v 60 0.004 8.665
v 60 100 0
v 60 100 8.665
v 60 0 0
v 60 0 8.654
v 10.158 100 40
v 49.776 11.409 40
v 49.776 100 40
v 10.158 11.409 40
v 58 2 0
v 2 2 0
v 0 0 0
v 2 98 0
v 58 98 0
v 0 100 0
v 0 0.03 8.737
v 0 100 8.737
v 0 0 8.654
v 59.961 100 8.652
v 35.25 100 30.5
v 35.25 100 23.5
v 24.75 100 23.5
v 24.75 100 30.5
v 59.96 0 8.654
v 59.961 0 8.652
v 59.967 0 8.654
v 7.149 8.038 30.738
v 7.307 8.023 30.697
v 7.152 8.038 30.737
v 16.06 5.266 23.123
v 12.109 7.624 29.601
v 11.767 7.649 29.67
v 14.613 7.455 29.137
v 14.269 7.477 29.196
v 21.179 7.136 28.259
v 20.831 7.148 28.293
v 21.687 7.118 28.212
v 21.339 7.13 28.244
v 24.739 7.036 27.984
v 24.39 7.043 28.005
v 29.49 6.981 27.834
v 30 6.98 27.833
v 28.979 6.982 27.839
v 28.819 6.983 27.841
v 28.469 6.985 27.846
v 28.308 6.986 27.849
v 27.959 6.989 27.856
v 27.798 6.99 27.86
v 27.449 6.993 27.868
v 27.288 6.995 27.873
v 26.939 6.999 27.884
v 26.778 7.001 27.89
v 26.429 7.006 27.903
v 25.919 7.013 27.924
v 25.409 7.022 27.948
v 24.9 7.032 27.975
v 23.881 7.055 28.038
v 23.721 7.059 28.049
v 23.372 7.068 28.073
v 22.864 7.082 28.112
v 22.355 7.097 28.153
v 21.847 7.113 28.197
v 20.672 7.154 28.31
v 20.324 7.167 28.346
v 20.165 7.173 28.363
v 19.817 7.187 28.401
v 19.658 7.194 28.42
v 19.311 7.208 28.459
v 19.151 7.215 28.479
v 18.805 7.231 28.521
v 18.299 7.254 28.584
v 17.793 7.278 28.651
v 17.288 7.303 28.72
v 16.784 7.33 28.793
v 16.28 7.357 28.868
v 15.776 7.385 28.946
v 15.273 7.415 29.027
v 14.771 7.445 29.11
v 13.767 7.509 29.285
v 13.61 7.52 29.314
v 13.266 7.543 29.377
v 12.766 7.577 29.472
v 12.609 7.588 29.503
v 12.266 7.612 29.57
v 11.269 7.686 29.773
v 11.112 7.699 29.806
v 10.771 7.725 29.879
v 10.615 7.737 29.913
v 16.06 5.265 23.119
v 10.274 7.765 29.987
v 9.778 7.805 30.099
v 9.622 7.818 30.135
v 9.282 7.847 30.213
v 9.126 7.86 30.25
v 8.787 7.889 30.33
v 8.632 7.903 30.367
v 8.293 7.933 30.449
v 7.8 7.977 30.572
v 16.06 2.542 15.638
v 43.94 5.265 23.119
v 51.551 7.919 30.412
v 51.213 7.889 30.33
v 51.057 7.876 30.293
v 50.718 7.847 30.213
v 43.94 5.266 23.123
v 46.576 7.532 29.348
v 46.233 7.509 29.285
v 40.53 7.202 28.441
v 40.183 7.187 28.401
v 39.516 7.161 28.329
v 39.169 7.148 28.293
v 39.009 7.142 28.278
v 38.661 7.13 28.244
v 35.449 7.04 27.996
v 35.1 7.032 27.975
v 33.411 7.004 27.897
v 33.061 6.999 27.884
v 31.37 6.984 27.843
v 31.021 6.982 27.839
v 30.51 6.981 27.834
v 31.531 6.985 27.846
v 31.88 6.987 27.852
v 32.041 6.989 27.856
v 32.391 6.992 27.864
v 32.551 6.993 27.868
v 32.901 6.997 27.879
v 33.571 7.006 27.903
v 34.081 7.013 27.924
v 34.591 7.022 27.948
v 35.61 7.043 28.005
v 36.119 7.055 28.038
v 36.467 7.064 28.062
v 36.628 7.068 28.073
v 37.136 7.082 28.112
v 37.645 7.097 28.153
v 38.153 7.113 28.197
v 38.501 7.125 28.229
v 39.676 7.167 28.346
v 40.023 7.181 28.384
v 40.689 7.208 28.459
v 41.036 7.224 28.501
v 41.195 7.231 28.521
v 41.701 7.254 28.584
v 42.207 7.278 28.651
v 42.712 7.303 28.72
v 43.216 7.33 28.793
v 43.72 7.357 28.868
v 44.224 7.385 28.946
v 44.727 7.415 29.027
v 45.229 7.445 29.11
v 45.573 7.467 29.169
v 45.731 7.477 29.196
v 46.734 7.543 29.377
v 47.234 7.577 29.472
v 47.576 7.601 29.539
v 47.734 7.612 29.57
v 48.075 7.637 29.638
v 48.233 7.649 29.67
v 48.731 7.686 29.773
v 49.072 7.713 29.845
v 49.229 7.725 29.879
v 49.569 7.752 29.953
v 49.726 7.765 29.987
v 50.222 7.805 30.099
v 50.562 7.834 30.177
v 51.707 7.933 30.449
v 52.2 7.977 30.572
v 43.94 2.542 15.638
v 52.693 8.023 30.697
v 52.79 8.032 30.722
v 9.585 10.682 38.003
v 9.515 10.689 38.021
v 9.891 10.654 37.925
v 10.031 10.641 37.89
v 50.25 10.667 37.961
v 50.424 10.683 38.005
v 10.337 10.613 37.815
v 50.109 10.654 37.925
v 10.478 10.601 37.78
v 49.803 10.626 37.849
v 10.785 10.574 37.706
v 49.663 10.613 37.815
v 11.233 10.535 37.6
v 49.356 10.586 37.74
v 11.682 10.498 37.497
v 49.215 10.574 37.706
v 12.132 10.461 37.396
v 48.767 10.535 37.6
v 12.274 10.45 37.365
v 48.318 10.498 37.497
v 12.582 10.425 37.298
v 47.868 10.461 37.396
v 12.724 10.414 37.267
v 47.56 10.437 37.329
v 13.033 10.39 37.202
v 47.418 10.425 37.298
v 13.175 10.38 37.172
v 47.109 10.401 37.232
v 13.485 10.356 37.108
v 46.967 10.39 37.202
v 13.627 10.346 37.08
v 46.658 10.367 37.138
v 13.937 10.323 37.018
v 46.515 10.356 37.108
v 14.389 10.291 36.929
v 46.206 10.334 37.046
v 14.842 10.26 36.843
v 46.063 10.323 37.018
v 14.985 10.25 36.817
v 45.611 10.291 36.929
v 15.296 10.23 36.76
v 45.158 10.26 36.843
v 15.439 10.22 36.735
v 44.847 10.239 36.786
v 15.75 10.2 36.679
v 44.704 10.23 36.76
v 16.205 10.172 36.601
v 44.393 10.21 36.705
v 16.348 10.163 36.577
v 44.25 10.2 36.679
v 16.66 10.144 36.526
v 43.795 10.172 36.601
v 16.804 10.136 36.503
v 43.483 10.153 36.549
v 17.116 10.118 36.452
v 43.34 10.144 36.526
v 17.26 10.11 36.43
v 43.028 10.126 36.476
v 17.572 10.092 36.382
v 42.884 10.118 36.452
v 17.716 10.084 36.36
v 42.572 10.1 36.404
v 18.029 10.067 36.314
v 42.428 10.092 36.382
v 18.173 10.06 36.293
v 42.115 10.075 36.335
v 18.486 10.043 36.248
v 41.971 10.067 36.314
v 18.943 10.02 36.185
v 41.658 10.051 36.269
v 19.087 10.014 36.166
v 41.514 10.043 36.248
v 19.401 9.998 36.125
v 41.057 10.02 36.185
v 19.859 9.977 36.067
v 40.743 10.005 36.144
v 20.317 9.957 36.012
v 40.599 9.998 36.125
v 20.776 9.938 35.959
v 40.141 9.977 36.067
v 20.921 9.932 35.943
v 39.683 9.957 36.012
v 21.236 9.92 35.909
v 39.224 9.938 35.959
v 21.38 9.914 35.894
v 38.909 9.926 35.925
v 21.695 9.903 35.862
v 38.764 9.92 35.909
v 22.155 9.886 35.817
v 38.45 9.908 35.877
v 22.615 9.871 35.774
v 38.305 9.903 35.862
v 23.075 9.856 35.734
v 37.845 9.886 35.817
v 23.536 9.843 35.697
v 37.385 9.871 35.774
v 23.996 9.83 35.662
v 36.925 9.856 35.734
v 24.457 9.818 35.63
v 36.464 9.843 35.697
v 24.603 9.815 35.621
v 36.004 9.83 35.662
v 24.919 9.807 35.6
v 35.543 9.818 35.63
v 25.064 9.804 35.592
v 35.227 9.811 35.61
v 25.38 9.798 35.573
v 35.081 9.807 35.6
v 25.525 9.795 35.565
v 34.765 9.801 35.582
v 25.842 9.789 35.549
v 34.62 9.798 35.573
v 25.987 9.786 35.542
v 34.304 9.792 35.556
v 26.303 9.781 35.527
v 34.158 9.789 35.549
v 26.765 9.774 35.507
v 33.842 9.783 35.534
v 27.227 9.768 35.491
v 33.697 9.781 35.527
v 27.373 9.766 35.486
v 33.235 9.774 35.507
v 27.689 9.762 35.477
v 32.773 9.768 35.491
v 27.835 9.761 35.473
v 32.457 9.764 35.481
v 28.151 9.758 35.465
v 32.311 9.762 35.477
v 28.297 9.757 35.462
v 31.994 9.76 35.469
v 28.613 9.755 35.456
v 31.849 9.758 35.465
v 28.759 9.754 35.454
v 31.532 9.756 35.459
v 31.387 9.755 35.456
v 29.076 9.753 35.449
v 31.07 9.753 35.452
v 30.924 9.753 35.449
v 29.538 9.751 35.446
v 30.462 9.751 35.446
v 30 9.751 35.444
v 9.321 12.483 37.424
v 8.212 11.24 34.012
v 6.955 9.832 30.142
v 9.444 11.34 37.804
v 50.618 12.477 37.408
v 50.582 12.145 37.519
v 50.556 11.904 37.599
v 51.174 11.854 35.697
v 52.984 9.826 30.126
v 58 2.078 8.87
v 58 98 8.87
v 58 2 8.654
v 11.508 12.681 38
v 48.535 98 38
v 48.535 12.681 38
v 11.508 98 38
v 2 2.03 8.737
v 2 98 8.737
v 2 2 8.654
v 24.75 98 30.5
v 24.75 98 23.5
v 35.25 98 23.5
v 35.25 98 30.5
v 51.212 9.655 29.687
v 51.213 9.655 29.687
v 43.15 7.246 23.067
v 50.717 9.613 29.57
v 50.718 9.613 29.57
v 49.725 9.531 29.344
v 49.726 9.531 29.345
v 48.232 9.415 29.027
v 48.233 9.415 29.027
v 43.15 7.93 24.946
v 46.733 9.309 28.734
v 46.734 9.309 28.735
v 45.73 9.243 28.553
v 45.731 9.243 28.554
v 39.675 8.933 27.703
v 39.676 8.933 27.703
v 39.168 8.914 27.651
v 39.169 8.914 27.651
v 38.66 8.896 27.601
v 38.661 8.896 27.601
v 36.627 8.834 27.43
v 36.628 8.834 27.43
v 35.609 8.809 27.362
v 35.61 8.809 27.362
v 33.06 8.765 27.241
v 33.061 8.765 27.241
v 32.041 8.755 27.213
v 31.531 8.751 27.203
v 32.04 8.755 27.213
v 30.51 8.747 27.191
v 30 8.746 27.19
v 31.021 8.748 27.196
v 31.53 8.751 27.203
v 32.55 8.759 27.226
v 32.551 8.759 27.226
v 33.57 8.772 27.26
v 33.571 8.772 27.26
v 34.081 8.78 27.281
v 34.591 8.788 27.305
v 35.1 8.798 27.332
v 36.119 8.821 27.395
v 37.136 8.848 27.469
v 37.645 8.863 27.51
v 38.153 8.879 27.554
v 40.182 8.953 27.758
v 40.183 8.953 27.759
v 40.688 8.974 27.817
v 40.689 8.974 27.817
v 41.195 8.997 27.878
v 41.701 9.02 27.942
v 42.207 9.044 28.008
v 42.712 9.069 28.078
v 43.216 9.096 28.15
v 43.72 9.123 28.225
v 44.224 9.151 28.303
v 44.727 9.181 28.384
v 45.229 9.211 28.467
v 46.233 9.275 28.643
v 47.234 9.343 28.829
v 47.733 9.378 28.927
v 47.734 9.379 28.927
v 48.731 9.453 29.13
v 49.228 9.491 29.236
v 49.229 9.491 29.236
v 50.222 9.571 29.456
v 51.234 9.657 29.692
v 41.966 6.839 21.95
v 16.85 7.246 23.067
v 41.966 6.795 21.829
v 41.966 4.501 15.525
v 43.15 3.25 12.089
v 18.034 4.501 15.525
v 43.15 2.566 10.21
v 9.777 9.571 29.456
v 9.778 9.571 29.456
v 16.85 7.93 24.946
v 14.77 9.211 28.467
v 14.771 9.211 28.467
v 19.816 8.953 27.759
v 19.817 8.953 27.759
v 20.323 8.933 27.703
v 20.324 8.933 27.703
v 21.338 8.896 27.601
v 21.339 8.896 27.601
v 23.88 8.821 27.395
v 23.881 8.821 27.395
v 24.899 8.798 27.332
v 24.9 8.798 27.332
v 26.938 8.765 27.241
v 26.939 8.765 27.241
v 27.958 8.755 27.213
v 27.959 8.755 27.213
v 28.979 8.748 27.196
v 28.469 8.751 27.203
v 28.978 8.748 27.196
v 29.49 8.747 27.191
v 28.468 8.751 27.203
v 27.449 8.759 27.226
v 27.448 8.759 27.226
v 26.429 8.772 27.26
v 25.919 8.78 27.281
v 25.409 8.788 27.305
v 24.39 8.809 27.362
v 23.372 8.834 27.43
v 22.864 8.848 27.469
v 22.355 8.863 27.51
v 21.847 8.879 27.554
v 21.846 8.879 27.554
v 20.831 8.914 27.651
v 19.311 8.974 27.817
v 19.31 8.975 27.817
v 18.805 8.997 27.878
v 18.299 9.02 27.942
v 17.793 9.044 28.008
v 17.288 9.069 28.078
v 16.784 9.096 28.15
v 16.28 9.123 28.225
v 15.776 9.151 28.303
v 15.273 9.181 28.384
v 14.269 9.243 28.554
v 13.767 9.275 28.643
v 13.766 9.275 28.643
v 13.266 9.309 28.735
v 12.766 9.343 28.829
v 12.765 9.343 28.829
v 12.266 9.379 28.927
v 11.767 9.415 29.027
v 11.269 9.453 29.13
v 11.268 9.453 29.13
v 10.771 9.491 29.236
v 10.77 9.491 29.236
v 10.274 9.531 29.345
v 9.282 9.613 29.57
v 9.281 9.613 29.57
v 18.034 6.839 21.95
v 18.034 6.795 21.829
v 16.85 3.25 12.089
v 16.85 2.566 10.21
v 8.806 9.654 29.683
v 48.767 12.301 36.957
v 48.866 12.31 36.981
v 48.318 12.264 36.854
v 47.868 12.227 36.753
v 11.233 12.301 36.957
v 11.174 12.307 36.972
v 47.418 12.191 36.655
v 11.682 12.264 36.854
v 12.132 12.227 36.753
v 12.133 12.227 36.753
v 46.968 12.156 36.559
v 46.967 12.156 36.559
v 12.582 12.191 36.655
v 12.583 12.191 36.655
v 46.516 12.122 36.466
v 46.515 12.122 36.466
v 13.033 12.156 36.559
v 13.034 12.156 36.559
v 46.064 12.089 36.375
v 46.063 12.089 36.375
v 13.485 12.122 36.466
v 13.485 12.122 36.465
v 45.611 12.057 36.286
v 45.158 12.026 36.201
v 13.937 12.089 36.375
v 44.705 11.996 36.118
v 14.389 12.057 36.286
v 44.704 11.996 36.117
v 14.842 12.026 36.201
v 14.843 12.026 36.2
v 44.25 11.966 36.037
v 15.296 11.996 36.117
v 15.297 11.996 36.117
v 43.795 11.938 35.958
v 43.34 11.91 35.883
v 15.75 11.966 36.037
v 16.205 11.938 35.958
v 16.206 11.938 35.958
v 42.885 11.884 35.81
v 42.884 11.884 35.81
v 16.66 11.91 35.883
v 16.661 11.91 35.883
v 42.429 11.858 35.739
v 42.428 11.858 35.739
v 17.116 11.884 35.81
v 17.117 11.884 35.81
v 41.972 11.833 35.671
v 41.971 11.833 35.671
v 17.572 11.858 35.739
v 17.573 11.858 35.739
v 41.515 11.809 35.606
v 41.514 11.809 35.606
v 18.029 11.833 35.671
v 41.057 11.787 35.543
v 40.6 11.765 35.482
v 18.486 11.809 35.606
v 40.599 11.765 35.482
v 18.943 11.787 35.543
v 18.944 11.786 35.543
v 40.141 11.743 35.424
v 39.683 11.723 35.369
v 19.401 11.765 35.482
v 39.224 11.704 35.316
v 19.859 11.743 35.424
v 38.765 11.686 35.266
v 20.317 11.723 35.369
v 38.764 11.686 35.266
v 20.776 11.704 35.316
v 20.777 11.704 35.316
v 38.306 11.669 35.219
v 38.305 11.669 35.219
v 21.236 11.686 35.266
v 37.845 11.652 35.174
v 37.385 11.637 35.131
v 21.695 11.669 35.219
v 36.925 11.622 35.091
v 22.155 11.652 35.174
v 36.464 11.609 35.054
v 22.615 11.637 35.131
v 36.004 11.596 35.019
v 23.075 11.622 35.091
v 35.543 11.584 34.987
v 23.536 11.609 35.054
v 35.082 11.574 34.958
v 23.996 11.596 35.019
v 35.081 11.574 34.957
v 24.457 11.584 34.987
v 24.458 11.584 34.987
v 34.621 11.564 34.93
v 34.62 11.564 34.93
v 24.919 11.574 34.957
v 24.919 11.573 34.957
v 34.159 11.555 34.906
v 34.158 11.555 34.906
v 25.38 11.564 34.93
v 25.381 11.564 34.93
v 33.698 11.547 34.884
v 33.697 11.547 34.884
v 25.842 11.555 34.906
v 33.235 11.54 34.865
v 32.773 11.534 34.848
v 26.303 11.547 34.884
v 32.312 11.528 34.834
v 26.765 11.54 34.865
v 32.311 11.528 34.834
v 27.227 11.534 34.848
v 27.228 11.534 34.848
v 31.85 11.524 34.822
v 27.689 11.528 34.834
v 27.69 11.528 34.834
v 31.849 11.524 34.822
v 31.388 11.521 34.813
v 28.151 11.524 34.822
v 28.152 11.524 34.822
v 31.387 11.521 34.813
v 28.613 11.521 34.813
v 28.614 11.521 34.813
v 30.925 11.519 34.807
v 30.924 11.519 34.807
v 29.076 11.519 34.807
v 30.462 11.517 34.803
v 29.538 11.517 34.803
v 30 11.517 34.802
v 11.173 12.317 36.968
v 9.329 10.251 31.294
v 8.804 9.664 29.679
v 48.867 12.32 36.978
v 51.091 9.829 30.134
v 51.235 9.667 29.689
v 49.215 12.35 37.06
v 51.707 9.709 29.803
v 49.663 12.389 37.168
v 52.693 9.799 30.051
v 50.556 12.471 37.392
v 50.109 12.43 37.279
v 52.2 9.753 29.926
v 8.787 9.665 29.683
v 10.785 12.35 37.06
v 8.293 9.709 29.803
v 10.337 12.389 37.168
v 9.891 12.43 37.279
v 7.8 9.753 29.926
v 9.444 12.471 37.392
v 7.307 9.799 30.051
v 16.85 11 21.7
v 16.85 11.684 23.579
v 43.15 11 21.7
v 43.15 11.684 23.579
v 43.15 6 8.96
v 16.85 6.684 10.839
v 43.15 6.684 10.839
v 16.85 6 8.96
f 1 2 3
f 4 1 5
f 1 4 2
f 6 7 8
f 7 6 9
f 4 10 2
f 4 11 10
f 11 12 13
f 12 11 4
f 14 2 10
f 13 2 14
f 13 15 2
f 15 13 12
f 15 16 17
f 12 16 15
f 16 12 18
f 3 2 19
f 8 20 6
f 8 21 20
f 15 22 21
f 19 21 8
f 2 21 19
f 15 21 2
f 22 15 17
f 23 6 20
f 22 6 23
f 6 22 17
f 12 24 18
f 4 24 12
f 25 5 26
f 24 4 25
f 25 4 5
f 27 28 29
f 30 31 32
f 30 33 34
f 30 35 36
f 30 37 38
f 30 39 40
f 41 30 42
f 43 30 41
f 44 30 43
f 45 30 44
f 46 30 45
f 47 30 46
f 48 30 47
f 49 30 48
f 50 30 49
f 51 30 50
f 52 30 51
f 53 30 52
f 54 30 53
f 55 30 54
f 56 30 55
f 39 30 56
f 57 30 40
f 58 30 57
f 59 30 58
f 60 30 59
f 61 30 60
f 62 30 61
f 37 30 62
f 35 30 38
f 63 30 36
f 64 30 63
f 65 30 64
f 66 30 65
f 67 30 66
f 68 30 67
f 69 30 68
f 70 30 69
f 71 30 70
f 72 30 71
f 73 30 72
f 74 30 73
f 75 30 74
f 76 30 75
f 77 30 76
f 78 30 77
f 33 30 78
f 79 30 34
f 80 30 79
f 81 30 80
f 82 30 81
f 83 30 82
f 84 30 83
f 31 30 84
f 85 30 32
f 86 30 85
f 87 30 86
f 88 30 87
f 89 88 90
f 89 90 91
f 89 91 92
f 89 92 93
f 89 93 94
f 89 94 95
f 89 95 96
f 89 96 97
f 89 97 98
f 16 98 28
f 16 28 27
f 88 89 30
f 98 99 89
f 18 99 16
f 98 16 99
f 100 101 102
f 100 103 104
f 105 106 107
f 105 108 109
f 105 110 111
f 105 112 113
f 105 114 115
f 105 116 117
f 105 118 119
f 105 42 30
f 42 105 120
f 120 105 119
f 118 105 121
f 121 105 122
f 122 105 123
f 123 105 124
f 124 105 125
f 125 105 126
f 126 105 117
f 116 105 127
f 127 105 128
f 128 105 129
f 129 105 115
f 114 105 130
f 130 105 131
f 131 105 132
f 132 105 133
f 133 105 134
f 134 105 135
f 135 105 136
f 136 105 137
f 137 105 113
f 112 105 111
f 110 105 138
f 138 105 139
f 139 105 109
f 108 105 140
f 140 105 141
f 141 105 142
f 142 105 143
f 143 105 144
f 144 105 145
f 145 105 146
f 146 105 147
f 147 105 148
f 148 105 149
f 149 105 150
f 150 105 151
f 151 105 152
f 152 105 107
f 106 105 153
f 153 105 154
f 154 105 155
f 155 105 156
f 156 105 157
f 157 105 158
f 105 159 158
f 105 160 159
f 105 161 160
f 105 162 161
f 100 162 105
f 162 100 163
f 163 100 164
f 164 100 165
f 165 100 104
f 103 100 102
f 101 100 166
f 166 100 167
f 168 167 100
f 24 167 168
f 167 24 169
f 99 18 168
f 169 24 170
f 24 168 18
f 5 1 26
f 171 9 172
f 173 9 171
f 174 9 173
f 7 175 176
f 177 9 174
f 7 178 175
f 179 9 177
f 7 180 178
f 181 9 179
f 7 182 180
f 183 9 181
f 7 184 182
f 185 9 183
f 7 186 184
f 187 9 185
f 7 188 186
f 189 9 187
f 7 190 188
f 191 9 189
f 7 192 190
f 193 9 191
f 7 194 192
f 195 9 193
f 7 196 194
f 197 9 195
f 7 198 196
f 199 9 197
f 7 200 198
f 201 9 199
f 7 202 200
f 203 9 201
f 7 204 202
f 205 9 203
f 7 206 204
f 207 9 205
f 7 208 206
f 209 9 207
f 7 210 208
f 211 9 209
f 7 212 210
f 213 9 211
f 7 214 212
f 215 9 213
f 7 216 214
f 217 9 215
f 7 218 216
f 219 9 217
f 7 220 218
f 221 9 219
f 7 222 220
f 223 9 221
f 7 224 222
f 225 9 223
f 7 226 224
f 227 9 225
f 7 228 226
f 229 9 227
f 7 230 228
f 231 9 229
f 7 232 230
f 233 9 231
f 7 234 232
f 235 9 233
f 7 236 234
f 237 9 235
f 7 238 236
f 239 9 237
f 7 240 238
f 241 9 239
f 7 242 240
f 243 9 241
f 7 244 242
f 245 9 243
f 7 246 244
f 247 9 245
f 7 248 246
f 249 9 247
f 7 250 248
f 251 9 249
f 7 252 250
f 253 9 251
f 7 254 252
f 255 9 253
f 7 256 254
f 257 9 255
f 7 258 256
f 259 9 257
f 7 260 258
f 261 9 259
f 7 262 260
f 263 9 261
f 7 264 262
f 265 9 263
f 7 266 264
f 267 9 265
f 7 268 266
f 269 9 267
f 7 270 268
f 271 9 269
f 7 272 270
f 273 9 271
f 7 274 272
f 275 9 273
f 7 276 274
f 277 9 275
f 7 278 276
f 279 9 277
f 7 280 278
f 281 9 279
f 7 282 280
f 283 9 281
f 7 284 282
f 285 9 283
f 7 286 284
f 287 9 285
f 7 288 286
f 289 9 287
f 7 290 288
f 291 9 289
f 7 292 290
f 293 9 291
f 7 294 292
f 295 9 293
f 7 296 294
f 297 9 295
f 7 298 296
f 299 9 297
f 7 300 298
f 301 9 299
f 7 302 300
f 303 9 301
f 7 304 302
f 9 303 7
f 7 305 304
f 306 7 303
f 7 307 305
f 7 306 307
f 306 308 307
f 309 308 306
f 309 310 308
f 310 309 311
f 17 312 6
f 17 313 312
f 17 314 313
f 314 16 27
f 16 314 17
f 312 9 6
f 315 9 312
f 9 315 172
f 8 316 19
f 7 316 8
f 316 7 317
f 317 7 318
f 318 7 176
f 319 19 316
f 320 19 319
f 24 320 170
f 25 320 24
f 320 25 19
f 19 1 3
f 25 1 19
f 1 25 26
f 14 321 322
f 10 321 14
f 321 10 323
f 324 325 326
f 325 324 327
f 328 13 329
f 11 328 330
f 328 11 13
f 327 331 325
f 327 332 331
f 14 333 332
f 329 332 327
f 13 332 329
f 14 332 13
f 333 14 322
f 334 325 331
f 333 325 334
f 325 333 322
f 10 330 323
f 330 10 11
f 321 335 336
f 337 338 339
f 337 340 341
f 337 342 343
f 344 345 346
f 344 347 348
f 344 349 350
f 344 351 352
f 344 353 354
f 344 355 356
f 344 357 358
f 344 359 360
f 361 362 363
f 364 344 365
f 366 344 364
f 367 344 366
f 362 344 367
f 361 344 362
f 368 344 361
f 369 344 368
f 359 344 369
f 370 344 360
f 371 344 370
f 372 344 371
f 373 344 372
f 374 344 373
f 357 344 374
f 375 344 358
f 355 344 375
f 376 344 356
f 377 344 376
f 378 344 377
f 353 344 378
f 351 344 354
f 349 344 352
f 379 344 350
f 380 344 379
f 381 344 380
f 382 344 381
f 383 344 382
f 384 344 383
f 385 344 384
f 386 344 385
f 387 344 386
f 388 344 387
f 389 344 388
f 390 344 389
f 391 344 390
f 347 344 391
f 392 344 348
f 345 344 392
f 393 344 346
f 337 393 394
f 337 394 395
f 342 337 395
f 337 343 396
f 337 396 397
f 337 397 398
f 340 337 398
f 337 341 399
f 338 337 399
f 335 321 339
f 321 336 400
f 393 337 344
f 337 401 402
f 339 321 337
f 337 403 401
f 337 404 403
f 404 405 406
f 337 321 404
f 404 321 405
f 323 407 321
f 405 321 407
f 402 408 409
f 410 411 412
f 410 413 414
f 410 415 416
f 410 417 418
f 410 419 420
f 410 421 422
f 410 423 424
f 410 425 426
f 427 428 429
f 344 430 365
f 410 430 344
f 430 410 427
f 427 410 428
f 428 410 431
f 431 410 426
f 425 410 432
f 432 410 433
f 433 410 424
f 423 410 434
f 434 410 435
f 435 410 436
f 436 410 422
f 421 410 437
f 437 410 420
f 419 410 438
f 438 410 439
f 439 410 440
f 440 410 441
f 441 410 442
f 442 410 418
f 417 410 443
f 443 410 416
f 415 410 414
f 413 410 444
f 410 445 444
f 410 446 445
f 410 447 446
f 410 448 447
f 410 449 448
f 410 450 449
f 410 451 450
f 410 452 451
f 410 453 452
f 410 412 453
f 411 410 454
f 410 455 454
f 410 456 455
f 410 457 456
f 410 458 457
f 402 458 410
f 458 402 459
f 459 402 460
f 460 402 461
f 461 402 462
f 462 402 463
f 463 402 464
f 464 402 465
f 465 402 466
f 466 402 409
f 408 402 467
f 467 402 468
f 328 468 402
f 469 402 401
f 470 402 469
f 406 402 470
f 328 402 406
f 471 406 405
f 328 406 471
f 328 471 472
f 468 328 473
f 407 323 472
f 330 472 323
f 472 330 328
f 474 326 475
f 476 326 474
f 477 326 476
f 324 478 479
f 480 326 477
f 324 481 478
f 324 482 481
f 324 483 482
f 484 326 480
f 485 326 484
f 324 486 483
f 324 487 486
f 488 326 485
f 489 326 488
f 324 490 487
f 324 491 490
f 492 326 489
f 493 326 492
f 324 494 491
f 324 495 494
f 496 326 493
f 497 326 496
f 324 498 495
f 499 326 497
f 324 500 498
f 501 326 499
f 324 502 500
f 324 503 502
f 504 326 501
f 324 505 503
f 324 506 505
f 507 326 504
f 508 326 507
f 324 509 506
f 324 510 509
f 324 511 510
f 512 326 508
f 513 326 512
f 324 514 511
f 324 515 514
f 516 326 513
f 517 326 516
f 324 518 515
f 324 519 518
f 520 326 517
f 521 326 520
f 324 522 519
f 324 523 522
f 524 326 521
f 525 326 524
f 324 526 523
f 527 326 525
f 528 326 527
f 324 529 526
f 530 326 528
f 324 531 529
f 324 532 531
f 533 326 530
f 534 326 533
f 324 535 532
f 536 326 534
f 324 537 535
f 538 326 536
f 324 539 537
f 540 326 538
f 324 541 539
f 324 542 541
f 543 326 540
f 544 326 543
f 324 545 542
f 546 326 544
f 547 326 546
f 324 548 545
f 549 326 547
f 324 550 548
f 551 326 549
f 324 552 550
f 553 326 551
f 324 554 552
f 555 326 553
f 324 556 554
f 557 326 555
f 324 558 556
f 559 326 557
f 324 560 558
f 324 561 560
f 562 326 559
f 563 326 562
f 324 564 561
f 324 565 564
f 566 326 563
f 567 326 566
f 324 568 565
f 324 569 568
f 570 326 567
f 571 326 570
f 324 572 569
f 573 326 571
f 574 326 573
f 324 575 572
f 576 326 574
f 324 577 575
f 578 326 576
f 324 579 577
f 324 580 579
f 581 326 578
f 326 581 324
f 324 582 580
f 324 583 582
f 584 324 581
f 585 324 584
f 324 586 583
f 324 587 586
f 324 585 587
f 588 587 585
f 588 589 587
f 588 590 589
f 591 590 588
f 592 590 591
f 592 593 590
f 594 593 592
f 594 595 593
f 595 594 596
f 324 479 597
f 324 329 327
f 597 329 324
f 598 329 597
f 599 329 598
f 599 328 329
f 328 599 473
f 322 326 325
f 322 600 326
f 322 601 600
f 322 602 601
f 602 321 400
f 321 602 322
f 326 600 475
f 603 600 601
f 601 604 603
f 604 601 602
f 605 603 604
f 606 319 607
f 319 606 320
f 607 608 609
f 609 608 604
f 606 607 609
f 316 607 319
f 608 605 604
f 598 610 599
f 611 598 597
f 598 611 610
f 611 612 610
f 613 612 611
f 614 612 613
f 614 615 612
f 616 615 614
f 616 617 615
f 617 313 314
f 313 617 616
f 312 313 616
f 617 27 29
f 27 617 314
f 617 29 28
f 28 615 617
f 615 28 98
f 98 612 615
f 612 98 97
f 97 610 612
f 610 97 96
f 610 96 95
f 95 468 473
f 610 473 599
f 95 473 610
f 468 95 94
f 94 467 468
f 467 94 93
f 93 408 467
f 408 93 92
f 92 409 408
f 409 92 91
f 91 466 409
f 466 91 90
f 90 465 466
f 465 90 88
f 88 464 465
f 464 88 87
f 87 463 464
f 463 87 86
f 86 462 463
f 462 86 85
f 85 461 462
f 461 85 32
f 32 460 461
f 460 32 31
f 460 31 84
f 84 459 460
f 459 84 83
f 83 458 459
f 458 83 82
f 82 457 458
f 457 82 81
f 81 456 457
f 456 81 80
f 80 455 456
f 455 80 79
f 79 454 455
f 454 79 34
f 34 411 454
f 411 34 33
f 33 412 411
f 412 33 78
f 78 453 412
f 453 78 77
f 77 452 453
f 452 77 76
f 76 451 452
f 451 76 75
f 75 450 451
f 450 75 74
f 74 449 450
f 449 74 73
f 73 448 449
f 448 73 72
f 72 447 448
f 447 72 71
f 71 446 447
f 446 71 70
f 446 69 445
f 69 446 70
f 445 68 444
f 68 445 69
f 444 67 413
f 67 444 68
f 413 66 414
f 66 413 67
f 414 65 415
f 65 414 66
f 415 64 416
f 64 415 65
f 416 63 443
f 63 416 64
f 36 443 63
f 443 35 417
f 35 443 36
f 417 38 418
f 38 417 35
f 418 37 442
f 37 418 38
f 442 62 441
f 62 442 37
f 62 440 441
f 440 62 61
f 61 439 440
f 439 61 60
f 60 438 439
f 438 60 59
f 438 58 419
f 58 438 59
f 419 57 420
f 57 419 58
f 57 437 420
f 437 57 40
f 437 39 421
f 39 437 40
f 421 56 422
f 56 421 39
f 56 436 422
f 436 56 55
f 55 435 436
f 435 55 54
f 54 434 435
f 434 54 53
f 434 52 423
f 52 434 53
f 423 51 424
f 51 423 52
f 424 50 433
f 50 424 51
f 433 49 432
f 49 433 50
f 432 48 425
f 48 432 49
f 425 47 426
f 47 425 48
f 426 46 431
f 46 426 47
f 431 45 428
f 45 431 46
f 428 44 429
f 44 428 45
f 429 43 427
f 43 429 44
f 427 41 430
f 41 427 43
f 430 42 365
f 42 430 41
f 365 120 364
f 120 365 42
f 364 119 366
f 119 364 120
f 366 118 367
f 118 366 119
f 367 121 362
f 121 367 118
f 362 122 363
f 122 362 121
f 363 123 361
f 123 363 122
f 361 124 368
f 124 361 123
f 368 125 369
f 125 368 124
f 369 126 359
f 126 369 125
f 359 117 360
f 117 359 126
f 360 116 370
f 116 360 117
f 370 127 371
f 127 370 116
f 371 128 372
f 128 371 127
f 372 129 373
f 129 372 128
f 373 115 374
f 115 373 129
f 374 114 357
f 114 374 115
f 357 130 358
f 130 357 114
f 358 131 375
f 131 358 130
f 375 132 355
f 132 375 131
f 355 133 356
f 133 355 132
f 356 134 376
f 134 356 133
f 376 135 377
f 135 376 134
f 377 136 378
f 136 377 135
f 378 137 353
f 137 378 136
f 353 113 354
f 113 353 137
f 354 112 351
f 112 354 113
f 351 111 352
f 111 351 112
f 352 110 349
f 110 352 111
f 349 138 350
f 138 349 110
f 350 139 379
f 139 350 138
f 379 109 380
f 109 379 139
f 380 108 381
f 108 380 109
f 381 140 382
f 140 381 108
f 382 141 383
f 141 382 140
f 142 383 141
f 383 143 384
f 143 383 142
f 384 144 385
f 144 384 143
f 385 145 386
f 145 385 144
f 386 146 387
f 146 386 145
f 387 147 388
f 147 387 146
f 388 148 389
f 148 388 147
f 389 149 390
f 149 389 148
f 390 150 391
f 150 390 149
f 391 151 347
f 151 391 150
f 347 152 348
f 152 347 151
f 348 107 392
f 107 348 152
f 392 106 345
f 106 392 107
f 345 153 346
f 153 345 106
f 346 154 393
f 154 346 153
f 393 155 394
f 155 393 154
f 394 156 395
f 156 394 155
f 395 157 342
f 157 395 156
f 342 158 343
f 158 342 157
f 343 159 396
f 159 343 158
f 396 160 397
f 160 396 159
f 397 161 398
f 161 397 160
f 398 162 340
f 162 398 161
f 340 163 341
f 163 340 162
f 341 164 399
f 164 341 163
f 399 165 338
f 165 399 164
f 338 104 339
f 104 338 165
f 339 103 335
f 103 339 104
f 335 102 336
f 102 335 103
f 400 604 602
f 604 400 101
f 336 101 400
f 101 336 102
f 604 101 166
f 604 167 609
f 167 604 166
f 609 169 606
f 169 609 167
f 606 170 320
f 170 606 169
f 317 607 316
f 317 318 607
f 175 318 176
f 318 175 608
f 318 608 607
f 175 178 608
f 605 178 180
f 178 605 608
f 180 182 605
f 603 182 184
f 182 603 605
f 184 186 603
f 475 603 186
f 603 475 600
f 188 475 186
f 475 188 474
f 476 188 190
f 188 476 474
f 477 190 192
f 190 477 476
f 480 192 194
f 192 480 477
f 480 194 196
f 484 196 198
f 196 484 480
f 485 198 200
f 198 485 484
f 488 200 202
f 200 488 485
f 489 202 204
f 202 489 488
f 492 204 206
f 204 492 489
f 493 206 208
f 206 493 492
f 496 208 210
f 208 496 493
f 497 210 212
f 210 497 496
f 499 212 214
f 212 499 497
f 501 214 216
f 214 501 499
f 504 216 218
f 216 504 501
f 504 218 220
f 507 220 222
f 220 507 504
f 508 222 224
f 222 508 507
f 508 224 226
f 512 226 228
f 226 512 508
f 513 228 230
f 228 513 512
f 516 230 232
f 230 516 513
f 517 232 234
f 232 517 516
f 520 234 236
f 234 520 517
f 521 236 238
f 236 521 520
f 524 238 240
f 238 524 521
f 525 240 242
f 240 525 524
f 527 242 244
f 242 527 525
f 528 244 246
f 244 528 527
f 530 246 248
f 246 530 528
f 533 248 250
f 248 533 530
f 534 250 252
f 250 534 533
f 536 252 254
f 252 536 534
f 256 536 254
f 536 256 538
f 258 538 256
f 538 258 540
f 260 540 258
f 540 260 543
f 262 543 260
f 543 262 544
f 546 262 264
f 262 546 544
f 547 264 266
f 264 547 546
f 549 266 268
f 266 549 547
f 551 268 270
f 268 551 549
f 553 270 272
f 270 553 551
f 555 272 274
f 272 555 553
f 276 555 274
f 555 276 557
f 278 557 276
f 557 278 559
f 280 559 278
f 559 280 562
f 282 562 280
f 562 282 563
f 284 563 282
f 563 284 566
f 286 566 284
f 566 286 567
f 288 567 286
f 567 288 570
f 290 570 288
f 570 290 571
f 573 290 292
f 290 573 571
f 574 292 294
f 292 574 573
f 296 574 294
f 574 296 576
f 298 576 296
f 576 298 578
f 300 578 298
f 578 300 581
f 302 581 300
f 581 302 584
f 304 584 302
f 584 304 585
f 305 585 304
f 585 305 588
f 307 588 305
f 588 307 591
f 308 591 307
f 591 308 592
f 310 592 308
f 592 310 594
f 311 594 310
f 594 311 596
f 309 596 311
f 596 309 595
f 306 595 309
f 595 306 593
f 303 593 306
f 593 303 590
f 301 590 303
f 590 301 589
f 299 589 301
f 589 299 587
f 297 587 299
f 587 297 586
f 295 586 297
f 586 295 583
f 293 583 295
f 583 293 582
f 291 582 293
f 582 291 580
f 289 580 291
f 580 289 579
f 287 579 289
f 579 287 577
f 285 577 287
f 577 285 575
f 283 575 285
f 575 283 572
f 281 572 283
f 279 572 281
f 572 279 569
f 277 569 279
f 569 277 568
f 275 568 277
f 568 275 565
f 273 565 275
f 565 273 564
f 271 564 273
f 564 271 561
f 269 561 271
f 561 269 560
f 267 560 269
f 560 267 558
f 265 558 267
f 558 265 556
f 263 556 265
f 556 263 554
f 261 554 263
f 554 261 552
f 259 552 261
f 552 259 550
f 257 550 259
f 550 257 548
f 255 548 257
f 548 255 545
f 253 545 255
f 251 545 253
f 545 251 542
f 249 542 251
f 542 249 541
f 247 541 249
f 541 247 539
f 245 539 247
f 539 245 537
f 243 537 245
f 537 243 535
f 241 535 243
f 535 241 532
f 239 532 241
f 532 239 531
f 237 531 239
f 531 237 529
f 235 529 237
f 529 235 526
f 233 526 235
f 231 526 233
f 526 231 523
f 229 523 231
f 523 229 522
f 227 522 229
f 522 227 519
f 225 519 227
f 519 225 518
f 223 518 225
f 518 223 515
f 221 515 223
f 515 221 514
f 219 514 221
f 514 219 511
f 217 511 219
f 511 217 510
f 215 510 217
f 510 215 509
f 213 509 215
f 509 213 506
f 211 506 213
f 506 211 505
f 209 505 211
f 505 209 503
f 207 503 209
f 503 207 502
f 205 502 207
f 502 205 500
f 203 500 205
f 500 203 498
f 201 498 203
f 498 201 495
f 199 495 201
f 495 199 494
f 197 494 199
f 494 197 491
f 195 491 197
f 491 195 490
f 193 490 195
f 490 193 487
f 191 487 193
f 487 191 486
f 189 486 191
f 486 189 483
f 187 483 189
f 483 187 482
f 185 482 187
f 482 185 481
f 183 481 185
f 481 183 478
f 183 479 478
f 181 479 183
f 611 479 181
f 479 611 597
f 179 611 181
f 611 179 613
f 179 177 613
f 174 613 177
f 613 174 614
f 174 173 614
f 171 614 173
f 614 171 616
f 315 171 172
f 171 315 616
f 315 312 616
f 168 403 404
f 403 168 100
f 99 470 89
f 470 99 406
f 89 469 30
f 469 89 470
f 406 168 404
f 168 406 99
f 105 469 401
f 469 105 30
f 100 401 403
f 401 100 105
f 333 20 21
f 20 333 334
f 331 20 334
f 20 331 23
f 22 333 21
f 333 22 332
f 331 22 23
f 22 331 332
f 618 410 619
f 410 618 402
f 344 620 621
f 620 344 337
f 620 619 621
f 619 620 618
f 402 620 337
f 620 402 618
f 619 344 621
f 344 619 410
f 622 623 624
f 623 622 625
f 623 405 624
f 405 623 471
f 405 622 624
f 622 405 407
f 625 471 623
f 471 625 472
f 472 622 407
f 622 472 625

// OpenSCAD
// RING CLIP
module ring_clip() {

// Main arc parameters
outer_radius = 86;
inner_radius = 78;
arc_angle = 30;
arc_height = 2;

// Small arc segment parameters
block_width = 4;         // radial width
block_angle = 10;        // degrees covered by each block
block_height = 3.5;      // block extrusion height
block_offset = 4;        // outward shift for small arcs
epsilon = 0.01;          // small overlap to ensure manifold


    
// Helper: create a ring arc (no center point, no straight slice)
module ring_arc(r1, r2, a1, a2, fragments=100) {
    step = (a2 - a1) / fragments;
    points = concat(
        [for(a = [a1 : step : a2]) [r1 * cos(a), r1 * sin(a)]],
        [for(a = [a2 : -step : a1]) [r2 * cos(a), r2 * sin(a)]]
    );
    polygon(points);
}


// Main arc (not shifted)
difference() {
    linear_extrude(height=arc_height)
        ring_arc(outer_radius, inner_radius, -arc_angle/2, arc_angle/2);

    linear_extrude(height=arc_height)
        ring_arc(outer_radius, inner_radius- epsilon, -arc_angle/6, arc_angle/6);
}

// Placement angles
left_angle = -arc_angle/2;
right_angle = arc_angle/2;

// LEFT blocks: left edge aligns with main arc end, block extends right
// Left Top block
linear_extrude(height=block_height)
    ring_arc(
        inner_radius - block_width + block_offset + epsilon,
        inner_radius - 2*block_width + block_offset - epsilon + 2, // Thin out
        left_angle,
        left_angle + block_angle
    );

// Left bottom extends over to touch right block
linear_extrude(height=block_height)
    ring_arc(
        outer_radius + block_offset + epsilon - 2,
        outer_radius - block_width + block_offset - epsilon,
        left_angle,
        left_angle + block_angle + 10
    );



// RIGHT blocks: right edge aligns with main arc end 
// Right Top block
linear_extrude(height=block_height)
    ring_arc(
        inner_radius - block_width + block_offset + epsilon,
        inner_radius - 2*block_width + block_offset - epsilon + 2, // Thin out
        right_angle - block_angle,
        right_angle
    );

// Right bottom block
linear_extrude(height=block_height)
    ring_arc(
        outer_radius + block_offset + epsilon - 2,
        outer_radius - block_width + block_offset - epsilon,
        right_angle - block_angle,
        right_angle
    );
    
  // tab
  translate([outer_radius, -7, 0])
    cube([20, 14, 3]);
}

// RING CLIP Mold
module ring_clip_mold() {

// Main arc parameters
outer_radius = 86;
inner_radius = 78;
arc_angle = 29;
arc_height = 1.65;

// Small arc segment parameters
block_width = 4;         // radial width
block_angle = 10;        // degrees covered by each block
block_height = 3.5;      // block extrusion height
block_offset = 4;        // outward shift for small arcs
epsilon = 0.01;          // small overlap to ensure manifold


    
// Helper: create a ring arc (no center point, no straight slice)
module ring_arc(r1, r2, a1, a2, fragments=100) {
    step = (a2 - a1) / fragments;
    points = concat(
        [for(a = [a1 : step : a2]) [r1 * cos(a), r1 * sin(a)]],
        [for(a = [a2 : -step : a1]) [r2 * cos(a), r2 * sin(a)]]
    );
    polygon(points);
}


// Main arc (not shifted)
difference() {
    linear_extrude(height=arc_height)
        ring_arc(outer_radius, inner_radius, -arc_angle/2, arc_angle/2);

   linear_extrude(height=arc_height)
        ring_arc(outer_radius, inner_radius- epsilon, -arc_angle/6, arc_angle/6);
}

// Placement angles
left_angle = -arc_angle/2;
right_angle = arc_angle/2;

// LEFT blocks: left edge aligns with main arc end, block extends right
// Left Top block
linear_extrude(height=block_height)
    ring_arc(
        inner_radius - block_width + block_offset + epsilon,
        inner_radius - 2*block_width + block_offset - epsilon + 2, // Thin out
        left_angle,
        left_angle + block_angle +10
    );

// Left bottom extends over to touch right block
linear_extrude(height=block_height)
    ring_arc(
        outer_radius + block_offset + epsilon - 2,
        outer_radius - block_width + block_offset - epsilon,
        left_angle,
        left_angle + block_angle + 10
    );



// RIGHT blocks: right edge aligns with main arc end 
// Right Top block
linear_extrude(height=block_height)
    ring_arc(
        inner_radius - block_width + block_offset + epsilon,
        inner_radius - 2*block_width + block_offset - epsilon + 2, // Thin out
        right_angle - block_angle,
        right_angle
    );

// Right bottom block
linear_extrude(height=block_height)
    ring_arc(
        outer_radius + block_offset + epsilon - 2,
        outer_radius - block_width + block_offset - epsilon,
        right_angle - block_angle,
        right_angle
    );
    
}

// RING CLIP Mold
module ring_clip_mold_minus() {

// Main arc parameters
outer_radius = 86;
inner_radius = 78;
arc_angle = 29;
arc_height = 1.65;

// Small arc segment parameters
block_width = 4;         // radial width
block_angle = 10;        // degrees covered by each block
block_height = 3.5;      // block extrusion height
block_offset = 4;        // outward shift for small arcs
epsilon = 0.01;          // small overlap to ensure manifold

    linear_extrude(height=arc_height)
        ring_arc(outer_radius, inner_radius, -arc_angle/2, arc_angle/2);


    
// Helper: create a ring arc (no center point, no straight slice)
module ring_arc(r1, r2, a1, a2, fragments=100) {
    step = (a2 - a1) / fragments;
    points = concat(
        [for(a = [a1 : step : a2]) [r1 * cos(a), r1 * sin(a)]],
        [for(a = [a2 : -step : a1]) [r2 * cos(a), r2 * sin(a)]]
    );
    polygon(points);
}

// Placement angles
left_angle = -arc_angle/2;
right_angle = arc_angle/2;

// LEFT blocks: left edge aligns with main arc end, block extends right
// Left Top block
linear_extrude(height=block_height)
    ring_arc(
        inner_radius - block_width + block_offset + epsilon,
        inner_radius - 2*block_width + block_offset - epsilon + 2, // Thin out
        left_angle,
        left_angle + block_angle +10
    );

// Left bottom extends over to touch right block
linear_extrude(height=block_height)
    ring_arc(
        outer_radius + block_offset + epsilon - 2,
        outer_radius - block_width + block_offset - epsilon,
        left_angle,
        left_angle + block_angle + 10
    );



// RIGHT blocks: right edge aligns with main arc end 
// Right Top block
linear_extrude(height=block_height)
    ring_arc(
        inner_radius - block_width + block_offset + epsilon,
        inner_radius - 2*block_width + block_offset - epsilon + 2, // Thin out
        right_angle - block_angle,
        right_angle
    );

// Right bottom block
linear_extrude(height=block_height)
    ring_arc(
        outer_radius + block_offset + epsilon - 2,
        outer_radius - block_width + block_offset - epsilon,
        right_angle - block_angle,
        right_angle
    );
    
}

//==

// RING CLIP Mold Minus Center
module ring_clip_mold_minus_center() {

  // Main arc parameters
  outer_radius = 86;
  inner_radius = 77.9;
  arc_angle = 34;
  arc_height = 6;

  linear_extrude(height=arc_height)
   ring_arc(outer_radius, inner_radius, -arc_angle/2, arc_angle/2);

  // Helper: create a ring arc (no center point, no straight slice)
  module ring_arc(r1, r2, a1, a2, fragments=100) {
    step = (a2 - a1) / fragments;
    points = concat(
        [for(a = [a1 : step : a2]) [r1 * cos(a), r1 * sin(a)]],
        [for(a = [a2 : -step : a1]) [r2 * cos(a), r2 * sin(a)]]
    );
    polygon(points);
  }
}


// GATE BOX
module gate_box() {
    
  gb_outside_x = 60;
  gb_outside_y = 100;
  gb_outside_z = 40;
  gb_wall_thick = 2;
  front_face_angle = 70;
  front_face_rise = 2.96;

  module gb_outside() {
    difference() {
        cube([gb_outside_x, gb_outside_y, gb_outside_z]);
        rotate(front_face_angle, [1,0,0] ) 
            translate ([0,0,front_face_rise]) 
                cube([gb_outside_x, gb_outside_y, gb_outside_z]);  
        rotate(18, [0,1,0] ) 
            translate ([-22.7,0,8.3]) 
                cube([20, gb_outside_y+1, gb_outside_z]);
        rotate(-18, [0,1,0]) 
          translate ([59.7,0,-10.3]) 
             cube([20, gb_outside_y+1, gb_outside_z]);
    }
  }

  module gb_inside() {
    difference() {
        cube([gb_outside_x-(gb_wall_thick*2), gb_outside_y-(gb_wall_thick*2), gb_outside_z-gb_wall_thick]);
        rotate(front_face_angle, [1,0,0] ) 
            translate ([0,0,front_face_rise]) 
                cube([gb_outside_x-(gb_wall_thick*2), gb_outside_y-(gb_wall_thick*2), gb_outside_z-gb_wall_thick]); 
        rotate(18, [0,1,0] ) 
            translate ([-22.7,0,8.3]) 
                cube([20, gb_outside_y-(gb_wall_thick*2)+4, gb_outside_z-gb_wall_thick]);
        rotate(-18, [0,1,0]) 
          translate ([56,0,-9]) 
             cube([20, gb_outside_y-(gb_wall_thick*2)+4, (gb_outside_z-gb_wall_thick)]);
    }
  }
  
  difference() { 
        gb_outside();
      
        // Remove the inside
        translate ([gb_wall_thick, gb_wall_thick, 0])
            gb_inside();
      
        // Make a curved slot by subtracting the ring clip
        translate([30, 38.17, 108]) rotate(-90, [0,0,1])  rotate(70, [0,1,0])  ring_clip_mold_minus_center();
  
        // Make the LCD display opening
        translate ([(gb_outside_x/2) , 3.85, 19.4]) 
           rotate(front_face_angle+180, [1,0,0]) 
              linear_extrude(height=12, scale=0.1)  square([28, 8], center=true); // inward taper on all sides
      
        // Make the USB Power opening
        translate ([(gb_outside_x/2)-(10.5/2) , gb_outside_y-4, 23.5])  
          cube([10.5, 8, 7]);
  }
 
  // Add LCD display top holder
  translate ([(gb_outside_x/2)-(26.3/2) , 11, 21.7]) 
      rotate(front_face_angle, [1,0,0]) 
        cube([26.3, 2, 4]);
        
  // Add LCD display bottom holder
  translate ([(gb_outside_x/2)-(26.3/2) , 6, 8.96]) 
      rotate(front_face_angle, [1,0,0]) 
        cube([26.3, 2, 4]);
        
}

// GATE Lid
module gate_lid() {
   
  gbl_wall_thick = 2; 
  gbl_outside_x = 60;
  gbl_outside_y = 100;
  gbl_outside_z = gbl_wall_thick;

  cube([gbl_outside_x, gbl_outside_y, gbl_outside_z]);
  
  translate([gbl_wall_thick, gbl_wall_thick, gbl_wall_thick])
    difference() { 
      cube([gbl_outside_x-(gbl_wall_thick*2), gbl_outside_y-(gbl_wall_thick*2), gbl_outside_z]);
        translate([gbl_wall_thick, gbl_wall_thick, 0])
          cube([gbl_outside_x-(gbl_wall_thick*4), gbl_outside_y-(gbl_wall_thick*4), gbl_outside_z]);
    }
 }

// Main - Generate Objects{ 
gate_box();

//translate ([-70,0,0]) gate_lid();


// Now add the clip back
// translate([30, 38.17, 108]) rotate(-90, [0,0,1])  rotate(70, [0,1,0])  ring_clip_mold();

//translate([20, 0, 0]) ring_clip();


        

  
    
